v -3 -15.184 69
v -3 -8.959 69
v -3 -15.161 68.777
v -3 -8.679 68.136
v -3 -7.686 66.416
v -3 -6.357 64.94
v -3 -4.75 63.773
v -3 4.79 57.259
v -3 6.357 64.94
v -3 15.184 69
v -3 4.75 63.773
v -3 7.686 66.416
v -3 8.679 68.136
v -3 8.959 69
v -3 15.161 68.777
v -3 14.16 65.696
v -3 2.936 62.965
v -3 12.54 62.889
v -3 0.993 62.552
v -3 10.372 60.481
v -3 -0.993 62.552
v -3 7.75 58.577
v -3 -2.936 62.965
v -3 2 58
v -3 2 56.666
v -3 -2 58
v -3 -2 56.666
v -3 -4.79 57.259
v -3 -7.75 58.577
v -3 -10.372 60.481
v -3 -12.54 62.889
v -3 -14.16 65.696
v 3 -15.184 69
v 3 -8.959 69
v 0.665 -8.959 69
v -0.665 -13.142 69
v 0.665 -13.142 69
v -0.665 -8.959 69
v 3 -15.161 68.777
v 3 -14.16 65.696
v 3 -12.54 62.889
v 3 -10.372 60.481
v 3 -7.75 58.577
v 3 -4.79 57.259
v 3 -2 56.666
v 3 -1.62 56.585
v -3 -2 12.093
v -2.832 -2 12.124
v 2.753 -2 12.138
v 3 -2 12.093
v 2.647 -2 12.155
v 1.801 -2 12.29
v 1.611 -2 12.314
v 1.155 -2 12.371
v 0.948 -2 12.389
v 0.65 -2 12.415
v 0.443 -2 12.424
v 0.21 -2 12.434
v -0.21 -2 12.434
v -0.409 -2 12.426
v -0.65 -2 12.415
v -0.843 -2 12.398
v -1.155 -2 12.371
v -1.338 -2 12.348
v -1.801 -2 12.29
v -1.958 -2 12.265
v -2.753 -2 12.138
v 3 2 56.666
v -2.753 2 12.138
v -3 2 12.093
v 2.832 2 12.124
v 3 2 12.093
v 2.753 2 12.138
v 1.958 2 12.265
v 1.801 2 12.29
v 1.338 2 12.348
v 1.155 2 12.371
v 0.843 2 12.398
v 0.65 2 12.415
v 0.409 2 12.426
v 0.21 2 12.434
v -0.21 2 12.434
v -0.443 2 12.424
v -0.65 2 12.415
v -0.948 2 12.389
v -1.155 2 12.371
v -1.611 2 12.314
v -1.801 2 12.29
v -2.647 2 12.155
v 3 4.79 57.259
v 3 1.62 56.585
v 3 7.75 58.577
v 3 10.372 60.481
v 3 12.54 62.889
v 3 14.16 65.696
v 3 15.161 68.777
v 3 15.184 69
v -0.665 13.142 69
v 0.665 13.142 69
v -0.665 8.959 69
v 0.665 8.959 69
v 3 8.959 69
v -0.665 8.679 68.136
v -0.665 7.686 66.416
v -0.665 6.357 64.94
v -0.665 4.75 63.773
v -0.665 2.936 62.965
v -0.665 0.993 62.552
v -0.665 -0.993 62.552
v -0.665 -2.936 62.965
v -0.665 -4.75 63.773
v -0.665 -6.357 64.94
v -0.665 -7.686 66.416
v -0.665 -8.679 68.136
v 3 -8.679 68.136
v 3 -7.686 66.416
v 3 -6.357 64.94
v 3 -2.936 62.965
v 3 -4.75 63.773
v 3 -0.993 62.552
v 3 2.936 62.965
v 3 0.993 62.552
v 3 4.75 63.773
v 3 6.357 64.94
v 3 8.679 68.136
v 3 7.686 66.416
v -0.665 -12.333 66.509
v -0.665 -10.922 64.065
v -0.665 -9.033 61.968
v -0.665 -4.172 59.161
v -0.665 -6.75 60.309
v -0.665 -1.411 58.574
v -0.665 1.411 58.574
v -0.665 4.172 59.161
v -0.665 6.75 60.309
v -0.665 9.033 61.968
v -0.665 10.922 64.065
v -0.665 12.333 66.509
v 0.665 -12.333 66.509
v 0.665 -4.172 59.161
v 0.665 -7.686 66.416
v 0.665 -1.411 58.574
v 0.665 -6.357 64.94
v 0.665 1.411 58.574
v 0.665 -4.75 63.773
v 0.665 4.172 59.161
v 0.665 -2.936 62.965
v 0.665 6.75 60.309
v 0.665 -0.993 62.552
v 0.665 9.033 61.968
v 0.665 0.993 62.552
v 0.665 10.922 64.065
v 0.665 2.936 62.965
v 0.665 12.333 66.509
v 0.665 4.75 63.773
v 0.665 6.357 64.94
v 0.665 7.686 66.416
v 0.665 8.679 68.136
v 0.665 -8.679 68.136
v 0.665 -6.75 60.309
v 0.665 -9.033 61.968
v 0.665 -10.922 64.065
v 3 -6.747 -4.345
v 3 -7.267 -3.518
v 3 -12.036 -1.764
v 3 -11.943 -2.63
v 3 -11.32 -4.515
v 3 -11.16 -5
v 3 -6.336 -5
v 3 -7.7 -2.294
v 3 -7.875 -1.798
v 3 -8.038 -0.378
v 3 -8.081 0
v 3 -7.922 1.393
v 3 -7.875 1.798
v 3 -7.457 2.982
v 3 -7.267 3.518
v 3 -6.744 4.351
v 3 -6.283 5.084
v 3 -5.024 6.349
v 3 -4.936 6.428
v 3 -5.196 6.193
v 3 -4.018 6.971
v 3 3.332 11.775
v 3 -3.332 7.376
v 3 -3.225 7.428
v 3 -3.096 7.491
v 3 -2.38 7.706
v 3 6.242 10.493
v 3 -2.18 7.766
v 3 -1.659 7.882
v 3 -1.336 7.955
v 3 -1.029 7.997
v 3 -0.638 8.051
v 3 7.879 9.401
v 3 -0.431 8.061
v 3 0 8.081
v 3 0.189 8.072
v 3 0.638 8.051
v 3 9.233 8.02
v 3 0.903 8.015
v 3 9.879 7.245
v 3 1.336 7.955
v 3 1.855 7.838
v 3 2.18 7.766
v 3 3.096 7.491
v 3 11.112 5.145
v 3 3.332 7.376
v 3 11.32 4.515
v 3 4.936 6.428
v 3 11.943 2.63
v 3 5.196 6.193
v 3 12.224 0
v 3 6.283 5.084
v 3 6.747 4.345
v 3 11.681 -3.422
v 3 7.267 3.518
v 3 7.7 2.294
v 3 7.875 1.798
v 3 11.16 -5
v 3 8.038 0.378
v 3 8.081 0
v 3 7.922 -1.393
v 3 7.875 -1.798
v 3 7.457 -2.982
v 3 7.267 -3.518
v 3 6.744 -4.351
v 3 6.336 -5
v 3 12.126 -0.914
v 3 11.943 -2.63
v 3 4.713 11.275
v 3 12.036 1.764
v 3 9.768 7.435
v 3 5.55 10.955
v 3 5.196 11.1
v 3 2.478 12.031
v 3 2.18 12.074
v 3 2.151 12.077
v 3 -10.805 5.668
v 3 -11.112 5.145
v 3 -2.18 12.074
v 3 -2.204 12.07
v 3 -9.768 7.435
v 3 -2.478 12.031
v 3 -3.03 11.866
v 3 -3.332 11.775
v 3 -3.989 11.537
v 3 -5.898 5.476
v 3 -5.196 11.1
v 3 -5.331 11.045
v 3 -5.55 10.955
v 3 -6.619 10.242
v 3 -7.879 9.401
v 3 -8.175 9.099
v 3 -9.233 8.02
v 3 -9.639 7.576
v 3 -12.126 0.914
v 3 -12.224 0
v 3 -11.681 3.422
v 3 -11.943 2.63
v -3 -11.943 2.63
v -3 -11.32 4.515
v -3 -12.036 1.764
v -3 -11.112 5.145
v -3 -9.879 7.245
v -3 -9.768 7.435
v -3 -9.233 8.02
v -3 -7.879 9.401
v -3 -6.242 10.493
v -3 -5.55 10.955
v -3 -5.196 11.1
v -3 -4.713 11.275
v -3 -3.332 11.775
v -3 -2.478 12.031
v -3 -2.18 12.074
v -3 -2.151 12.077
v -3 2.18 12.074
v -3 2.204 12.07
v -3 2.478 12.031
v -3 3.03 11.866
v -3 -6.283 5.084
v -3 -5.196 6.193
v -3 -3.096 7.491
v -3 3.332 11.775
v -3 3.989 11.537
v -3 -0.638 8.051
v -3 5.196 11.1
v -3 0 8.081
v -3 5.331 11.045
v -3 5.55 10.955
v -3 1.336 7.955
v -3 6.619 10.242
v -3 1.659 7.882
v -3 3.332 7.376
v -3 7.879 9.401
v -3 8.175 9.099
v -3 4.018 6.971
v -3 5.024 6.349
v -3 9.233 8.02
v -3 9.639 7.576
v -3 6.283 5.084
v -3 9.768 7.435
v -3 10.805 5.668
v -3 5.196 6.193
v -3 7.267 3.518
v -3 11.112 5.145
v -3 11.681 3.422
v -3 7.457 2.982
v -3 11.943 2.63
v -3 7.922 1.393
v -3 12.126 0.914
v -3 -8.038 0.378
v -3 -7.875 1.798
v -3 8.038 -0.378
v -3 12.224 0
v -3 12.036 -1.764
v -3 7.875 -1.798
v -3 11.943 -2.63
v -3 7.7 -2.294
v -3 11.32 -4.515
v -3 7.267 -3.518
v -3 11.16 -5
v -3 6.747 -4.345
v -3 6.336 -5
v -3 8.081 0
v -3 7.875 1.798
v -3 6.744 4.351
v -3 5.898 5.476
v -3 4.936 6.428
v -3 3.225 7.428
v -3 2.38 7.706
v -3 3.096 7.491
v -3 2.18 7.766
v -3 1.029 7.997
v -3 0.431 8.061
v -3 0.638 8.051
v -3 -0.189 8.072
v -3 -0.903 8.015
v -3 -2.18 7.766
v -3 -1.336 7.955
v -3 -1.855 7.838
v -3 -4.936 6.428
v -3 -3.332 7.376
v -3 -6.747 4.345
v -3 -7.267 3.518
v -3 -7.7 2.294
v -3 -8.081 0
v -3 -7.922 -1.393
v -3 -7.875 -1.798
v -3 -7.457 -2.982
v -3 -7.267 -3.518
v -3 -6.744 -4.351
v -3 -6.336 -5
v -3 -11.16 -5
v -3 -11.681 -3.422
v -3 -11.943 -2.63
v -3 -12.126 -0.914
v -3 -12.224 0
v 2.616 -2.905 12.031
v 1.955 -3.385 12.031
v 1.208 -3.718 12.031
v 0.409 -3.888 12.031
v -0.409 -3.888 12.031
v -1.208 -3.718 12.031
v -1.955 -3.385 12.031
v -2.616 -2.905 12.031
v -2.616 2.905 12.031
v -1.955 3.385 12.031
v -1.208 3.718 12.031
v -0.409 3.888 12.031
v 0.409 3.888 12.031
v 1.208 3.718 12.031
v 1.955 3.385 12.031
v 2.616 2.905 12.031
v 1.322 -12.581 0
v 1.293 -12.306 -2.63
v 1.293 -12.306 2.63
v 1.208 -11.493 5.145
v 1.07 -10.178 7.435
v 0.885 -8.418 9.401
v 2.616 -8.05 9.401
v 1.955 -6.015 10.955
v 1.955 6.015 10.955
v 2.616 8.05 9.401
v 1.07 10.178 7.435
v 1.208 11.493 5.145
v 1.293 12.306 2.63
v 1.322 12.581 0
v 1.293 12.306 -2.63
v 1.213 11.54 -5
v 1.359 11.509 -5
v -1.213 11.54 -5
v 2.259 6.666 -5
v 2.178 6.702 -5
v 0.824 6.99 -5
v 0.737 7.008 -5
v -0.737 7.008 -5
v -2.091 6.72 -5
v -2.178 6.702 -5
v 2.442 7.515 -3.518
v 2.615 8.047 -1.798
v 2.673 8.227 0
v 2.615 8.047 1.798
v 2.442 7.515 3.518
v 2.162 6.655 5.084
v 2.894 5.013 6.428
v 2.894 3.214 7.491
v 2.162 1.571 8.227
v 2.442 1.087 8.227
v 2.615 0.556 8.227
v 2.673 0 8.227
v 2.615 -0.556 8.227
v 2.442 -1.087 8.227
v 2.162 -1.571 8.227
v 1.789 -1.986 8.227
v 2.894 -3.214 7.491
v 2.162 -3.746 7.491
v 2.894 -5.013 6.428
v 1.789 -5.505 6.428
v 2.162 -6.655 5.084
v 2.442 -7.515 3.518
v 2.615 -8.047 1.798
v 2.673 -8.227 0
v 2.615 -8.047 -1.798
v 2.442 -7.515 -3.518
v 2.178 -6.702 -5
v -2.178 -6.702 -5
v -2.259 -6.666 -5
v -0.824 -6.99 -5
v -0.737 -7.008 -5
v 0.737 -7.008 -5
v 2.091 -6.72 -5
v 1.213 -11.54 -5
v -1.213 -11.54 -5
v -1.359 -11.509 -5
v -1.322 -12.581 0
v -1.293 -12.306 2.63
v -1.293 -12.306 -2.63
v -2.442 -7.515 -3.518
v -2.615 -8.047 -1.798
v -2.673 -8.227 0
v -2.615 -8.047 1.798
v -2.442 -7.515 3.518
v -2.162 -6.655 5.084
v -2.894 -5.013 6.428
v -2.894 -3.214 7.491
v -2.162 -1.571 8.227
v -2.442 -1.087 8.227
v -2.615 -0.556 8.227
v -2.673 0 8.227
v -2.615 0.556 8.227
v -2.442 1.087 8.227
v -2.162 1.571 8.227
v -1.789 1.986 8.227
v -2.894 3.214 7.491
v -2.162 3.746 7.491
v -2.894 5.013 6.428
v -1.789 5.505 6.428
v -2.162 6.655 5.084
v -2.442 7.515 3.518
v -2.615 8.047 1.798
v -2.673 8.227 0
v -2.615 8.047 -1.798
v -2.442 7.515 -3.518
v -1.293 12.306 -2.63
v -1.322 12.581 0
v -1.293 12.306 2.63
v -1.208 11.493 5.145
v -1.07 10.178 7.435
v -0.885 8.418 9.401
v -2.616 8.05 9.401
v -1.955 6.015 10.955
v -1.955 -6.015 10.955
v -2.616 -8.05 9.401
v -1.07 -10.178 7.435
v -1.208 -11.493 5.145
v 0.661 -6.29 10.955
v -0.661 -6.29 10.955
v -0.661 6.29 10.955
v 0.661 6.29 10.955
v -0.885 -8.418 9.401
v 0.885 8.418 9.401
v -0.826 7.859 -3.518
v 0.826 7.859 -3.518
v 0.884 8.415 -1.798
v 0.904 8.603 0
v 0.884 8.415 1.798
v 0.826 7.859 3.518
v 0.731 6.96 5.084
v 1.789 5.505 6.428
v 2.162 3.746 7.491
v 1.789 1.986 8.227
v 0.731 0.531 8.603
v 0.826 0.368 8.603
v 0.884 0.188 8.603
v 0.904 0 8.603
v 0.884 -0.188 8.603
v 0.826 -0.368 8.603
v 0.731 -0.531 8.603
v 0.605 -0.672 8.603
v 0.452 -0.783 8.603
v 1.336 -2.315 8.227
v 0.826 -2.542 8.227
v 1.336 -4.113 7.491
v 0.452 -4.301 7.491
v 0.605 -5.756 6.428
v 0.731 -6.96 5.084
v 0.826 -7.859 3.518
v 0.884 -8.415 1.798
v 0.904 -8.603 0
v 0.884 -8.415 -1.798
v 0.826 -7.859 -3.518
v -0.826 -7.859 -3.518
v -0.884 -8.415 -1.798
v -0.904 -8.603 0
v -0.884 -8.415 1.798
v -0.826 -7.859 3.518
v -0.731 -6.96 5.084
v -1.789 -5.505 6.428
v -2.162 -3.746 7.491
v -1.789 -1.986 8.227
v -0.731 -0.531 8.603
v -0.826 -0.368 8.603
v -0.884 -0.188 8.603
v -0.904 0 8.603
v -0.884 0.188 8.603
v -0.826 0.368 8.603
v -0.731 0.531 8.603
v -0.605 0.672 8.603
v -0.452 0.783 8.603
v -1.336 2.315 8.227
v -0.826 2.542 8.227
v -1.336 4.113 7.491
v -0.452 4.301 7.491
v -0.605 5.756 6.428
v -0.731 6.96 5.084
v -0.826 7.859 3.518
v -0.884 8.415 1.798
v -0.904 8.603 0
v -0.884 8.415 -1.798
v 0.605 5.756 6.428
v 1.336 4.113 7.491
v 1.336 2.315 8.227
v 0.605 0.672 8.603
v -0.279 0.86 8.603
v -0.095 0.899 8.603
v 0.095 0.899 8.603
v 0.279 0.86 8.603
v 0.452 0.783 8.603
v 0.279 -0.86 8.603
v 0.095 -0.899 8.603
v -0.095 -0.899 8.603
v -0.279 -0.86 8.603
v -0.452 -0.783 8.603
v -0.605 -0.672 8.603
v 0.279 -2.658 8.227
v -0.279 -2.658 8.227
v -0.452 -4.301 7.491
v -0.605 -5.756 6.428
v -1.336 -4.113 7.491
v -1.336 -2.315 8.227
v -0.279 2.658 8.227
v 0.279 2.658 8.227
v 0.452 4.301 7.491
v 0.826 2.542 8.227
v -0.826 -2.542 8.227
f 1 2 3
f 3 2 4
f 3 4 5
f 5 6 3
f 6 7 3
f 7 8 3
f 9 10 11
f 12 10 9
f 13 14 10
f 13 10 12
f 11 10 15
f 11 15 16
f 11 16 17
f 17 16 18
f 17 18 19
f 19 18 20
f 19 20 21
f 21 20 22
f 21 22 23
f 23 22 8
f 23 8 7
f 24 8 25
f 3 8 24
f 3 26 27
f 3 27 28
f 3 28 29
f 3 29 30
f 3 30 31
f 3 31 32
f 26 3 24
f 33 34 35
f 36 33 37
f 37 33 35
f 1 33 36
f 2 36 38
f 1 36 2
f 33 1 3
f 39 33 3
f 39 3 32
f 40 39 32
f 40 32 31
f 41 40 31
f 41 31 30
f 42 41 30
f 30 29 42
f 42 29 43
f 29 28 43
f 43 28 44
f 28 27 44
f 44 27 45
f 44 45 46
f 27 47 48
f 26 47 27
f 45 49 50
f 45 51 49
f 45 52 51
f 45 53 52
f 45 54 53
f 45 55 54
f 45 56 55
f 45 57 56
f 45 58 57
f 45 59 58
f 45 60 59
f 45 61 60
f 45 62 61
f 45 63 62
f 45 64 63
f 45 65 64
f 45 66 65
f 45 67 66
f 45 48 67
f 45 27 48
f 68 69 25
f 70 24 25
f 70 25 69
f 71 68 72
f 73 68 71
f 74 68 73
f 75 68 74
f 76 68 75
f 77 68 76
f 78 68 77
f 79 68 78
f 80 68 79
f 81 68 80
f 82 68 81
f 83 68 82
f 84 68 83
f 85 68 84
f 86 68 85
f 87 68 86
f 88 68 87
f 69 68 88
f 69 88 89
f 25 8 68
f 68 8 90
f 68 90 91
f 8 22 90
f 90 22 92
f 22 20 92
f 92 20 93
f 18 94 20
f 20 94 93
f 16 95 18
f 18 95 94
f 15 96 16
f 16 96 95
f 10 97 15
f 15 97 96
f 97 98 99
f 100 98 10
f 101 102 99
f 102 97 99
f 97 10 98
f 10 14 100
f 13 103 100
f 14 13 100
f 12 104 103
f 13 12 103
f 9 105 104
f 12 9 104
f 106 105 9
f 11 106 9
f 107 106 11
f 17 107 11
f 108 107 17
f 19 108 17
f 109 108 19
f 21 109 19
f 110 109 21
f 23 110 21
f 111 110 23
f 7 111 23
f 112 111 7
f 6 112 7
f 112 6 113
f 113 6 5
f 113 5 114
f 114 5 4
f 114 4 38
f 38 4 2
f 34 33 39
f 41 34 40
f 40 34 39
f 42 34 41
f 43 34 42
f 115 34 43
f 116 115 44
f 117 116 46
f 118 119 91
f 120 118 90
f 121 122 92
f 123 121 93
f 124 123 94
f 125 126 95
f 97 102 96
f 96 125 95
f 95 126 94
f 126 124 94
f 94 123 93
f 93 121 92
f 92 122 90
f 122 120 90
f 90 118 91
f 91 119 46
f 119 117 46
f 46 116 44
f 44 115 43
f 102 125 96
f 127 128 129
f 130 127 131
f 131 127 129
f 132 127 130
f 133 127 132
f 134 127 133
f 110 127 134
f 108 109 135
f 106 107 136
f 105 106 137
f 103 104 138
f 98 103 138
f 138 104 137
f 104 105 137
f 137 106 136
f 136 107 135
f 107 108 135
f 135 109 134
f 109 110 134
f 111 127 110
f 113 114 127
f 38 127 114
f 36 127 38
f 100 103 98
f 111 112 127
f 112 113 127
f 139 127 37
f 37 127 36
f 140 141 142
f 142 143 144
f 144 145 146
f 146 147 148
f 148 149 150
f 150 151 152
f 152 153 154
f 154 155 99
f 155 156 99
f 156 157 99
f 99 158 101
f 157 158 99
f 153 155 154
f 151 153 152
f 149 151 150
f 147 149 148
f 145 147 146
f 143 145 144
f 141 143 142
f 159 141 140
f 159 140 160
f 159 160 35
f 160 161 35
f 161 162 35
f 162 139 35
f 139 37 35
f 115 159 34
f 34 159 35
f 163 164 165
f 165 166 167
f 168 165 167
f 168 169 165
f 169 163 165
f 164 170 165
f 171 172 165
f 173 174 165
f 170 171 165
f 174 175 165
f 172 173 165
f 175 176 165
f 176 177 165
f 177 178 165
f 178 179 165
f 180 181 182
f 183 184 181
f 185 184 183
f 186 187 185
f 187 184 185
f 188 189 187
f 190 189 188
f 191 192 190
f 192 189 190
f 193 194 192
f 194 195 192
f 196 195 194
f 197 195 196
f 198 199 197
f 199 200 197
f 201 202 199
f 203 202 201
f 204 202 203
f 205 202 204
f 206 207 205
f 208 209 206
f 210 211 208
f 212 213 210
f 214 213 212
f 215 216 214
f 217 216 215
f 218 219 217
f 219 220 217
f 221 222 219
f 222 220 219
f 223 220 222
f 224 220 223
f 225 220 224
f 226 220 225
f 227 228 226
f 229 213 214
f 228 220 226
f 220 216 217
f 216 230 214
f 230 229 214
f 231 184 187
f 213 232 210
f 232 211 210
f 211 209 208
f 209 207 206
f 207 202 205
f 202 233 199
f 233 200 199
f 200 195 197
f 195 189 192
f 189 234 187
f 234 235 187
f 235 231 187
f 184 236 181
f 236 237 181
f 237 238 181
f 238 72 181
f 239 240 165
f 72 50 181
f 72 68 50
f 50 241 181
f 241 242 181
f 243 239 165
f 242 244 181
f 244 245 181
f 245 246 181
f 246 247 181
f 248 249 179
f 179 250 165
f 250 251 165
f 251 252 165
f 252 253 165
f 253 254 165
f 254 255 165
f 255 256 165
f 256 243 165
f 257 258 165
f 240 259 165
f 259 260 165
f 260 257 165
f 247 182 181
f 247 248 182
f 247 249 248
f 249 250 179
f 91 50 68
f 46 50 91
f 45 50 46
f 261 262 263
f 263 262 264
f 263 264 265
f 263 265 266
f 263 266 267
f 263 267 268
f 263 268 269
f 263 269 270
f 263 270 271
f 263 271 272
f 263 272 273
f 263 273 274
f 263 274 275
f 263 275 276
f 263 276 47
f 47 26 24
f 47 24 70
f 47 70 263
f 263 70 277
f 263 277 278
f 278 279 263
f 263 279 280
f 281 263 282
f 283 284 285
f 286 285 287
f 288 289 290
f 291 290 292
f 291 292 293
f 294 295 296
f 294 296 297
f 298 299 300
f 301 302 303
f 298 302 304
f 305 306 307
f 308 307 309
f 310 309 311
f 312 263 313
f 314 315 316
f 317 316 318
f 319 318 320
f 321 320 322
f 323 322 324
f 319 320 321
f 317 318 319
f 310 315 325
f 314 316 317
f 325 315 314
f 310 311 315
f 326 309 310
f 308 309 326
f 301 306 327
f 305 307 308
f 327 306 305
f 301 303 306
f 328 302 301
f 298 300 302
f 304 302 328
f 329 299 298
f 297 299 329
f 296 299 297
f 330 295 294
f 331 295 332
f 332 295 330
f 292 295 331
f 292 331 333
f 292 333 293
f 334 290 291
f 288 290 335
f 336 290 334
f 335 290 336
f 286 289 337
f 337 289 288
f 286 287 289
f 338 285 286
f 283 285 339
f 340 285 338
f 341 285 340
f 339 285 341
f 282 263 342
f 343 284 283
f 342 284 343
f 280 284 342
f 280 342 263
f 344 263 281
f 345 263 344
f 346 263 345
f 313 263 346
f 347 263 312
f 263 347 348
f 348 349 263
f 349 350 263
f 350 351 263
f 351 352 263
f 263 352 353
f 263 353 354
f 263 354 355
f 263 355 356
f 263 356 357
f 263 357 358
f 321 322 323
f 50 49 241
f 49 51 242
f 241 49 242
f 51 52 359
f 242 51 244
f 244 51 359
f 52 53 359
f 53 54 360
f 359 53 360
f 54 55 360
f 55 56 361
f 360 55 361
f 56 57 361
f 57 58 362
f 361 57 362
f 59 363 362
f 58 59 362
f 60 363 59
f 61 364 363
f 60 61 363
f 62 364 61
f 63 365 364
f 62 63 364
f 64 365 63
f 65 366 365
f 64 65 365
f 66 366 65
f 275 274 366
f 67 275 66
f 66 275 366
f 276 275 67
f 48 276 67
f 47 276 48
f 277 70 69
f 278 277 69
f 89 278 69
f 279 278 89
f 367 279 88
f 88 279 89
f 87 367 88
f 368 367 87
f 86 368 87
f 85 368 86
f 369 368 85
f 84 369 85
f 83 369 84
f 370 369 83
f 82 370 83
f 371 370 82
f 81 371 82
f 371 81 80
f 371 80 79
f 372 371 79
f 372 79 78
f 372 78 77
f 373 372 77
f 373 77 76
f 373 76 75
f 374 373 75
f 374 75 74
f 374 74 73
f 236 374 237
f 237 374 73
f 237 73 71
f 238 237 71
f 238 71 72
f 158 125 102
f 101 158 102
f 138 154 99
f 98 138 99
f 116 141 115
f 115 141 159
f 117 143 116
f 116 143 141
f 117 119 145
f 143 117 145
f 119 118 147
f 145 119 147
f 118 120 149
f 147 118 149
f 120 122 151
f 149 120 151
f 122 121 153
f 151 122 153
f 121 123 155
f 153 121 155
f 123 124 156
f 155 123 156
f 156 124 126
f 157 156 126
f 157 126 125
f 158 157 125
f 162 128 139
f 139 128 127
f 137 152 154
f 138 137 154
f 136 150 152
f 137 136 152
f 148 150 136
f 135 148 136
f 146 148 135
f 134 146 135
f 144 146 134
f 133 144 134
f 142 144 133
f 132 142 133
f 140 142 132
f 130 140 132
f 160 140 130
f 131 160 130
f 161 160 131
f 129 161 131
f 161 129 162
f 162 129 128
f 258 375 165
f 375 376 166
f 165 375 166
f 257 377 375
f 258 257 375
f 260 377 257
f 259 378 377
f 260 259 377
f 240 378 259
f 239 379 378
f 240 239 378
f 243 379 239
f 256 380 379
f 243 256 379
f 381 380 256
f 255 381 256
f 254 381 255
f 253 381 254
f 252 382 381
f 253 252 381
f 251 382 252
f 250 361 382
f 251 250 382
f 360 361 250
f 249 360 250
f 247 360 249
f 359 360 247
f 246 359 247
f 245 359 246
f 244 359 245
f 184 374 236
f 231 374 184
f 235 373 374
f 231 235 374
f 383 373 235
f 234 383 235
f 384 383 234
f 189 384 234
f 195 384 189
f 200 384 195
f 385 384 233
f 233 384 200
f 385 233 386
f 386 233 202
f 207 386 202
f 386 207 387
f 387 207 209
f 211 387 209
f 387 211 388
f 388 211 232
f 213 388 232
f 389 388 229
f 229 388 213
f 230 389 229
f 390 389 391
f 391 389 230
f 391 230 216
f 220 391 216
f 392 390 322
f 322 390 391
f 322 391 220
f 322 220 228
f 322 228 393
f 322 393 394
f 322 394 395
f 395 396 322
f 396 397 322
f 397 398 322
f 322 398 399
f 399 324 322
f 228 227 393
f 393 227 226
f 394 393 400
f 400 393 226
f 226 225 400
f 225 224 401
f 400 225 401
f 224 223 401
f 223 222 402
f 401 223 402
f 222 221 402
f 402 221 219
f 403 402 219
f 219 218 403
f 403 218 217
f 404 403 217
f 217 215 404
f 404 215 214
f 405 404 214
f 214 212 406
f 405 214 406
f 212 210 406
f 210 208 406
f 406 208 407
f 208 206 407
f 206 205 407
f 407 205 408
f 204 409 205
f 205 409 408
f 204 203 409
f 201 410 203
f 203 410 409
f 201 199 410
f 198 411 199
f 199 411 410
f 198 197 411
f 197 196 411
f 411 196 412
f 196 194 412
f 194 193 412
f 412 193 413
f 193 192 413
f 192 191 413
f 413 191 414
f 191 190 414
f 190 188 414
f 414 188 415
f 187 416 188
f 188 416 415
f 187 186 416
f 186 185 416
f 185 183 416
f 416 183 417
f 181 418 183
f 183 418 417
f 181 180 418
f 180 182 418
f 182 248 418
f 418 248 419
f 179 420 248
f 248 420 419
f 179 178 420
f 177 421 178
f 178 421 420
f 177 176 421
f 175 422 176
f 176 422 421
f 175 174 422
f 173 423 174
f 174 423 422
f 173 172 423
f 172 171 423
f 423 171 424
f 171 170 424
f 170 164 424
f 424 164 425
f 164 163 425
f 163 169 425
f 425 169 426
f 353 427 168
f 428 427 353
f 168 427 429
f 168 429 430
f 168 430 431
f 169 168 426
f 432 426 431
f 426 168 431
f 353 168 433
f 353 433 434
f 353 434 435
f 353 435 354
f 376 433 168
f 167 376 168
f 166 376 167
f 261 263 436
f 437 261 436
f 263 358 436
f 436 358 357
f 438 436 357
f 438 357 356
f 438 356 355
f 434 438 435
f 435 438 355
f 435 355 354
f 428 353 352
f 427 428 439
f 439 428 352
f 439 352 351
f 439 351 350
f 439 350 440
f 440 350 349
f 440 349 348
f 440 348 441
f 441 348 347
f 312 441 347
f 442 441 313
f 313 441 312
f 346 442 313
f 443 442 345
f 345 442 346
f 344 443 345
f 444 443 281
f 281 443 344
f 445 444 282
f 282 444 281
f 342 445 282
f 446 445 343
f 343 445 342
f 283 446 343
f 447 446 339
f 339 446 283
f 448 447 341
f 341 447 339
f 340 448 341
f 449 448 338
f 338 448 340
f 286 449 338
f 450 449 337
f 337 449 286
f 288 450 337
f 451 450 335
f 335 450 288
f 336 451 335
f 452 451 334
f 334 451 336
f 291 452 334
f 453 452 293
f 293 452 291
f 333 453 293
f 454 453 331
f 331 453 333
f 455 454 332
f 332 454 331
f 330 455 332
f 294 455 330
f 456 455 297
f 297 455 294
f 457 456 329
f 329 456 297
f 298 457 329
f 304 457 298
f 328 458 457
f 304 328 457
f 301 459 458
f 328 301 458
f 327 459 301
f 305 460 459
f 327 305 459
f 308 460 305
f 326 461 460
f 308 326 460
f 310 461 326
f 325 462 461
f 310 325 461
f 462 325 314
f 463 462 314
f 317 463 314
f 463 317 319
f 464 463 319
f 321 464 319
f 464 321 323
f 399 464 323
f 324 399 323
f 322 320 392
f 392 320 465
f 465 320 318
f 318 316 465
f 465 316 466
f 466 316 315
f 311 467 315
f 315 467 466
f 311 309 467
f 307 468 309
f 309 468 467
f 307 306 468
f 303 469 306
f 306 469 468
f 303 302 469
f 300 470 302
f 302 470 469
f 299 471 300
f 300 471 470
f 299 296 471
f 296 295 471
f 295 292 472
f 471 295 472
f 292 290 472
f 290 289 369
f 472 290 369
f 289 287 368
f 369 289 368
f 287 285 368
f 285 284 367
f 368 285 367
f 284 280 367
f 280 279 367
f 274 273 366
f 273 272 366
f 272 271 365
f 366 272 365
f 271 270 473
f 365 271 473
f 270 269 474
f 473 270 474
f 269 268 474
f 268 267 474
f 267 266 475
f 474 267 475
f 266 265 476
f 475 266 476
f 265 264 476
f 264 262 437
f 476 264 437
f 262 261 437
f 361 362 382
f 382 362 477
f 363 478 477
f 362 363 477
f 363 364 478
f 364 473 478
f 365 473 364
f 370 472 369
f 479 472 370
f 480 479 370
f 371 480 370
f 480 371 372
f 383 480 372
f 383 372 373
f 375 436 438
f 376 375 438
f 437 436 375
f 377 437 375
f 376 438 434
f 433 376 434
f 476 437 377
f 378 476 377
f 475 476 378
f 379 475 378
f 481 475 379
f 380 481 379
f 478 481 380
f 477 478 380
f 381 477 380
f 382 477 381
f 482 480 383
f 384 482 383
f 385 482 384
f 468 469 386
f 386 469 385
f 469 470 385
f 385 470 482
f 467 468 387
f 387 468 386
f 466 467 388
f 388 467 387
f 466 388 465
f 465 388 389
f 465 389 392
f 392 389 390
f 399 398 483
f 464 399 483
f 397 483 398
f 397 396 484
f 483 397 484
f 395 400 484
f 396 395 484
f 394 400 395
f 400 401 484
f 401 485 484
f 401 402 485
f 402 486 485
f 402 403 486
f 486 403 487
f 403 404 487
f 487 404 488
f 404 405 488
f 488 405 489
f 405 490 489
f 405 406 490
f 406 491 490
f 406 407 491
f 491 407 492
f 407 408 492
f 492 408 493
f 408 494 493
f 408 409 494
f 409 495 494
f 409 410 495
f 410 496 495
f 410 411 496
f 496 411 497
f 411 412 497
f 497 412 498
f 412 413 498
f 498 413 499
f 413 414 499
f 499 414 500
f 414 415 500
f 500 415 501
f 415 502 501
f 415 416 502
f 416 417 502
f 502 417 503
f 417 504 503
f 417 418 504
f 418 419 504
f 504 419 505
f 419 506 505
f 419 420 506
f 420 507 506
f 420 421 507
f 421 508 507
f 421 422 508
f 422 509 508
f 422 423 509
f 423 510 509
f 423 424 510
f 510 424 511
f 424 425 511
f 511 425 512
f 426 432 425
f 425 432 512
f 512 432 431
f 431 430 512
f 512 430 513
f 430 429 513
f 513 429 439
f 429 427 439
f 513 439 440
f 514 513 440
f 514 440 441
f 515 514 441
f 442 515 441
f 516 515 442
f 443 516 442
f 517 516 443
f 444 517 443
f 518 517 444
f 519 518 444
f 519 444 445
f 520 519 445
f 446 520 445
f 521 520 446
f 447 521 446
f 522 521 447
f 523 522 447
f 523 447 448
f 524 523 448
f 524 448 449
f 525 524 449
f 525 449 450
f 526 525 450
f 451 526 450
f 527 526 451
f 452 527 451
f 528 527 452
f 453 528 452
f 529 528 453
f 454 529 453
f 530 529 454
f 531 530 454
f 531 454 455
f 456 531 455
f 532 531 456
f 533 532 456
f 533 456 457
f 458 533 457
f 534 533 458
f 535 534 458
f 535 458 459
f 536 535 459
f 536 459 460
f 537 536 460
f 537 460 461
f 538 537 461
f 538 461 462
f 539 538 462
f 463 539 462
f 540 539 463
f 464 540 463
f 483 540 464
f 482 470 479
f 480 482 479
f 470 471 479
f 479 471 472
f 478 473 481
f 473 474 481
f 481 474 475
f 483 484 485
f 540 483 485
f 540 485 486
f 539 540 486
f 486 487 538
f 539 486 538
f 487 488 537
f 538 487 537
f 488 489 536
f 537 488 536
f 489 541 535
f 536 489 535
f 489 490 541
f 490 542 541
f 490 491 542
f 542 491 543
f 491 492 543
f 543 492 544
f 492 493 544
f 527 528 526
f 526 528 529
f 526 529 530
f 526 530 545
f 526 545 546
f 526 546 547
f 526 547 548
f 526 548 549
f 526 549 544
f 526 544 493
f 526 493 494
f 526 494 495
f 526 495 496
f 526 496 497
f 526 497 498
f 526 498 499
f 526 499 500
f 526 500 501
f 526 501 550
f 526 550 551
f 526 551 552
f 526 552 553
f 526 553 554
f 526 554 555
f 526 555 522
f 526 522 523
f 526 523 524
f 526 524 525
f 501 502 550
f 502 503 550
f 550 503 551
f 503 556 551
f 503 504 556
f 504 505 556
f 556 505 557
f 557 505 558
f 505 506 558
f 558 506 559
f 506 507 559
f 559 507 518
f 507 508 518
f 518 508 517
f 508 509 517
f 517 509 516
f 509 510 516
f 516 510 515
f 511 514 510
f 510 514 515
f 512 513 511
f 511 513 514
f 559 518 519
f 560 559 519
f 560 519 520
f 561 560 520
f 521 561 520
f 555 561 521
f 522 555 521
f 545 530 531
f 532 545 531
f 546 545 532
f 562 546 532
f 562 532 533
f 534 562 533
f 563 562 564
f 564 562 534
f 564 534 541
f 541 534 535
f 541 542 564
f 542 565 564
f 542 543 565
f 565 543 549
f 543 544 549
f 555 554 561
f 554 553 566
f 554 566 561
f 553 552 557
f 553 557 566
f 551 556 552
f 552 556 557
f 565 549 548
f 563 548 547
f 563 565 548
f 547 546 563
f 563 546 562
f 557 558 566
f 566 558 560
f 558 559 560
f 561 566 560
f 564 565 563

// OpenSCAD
dia_piezo=27.0;
thickness_piezo=1.33;
dia_sphere=17.3;
thickness=4;
thickness2=6;
length=72;

translate([0,0,length])
    rotate([90,0,90]) {
/* Piezo
        color([1,0,0])
            linear_extrude(height=0.31, center=true) {
                circle(r=dia_piezo/2);
            }
*/
        difference() {
            linear_extrude(height=thickness2, center=true)
                circle(r=dia_piezo/2+thickness/2);

            linear_extrude(height=thickness2+1, center=true)
                circle(r=dia_piezo/2-4);

            linear_extrude(height=thickness_piezo, center=true)
                circle(r=dia_piezo/2);

            translate([0,12,0])
                linear_extrude(height=thickness2+1, center=true)
                    square([100,30],center=true);
        }
    }


difference() {
    union() {
        cube(size=[10,thickness,length+44], center=true);
        sphere(r=(dia_sphere)/2+thickness, $fn=30);
    }
    sphere(r=dia_sphere/2, $fn=30);
    translate([-20-thickness2/2,-50,-50]) {
        cube(size=[20,100,200]);
    }
    translate([thickness2/2,-50,-50]) {
        cube(size=[20,100,122]);
    }
    translate([0,0,-55]) {
        cube(size=[100,100,100], center=true);
    }
}
/* Weight
color([1,0,0]) {
    sphere(r=dia_sphere/2, $fn=64);
}
*/
